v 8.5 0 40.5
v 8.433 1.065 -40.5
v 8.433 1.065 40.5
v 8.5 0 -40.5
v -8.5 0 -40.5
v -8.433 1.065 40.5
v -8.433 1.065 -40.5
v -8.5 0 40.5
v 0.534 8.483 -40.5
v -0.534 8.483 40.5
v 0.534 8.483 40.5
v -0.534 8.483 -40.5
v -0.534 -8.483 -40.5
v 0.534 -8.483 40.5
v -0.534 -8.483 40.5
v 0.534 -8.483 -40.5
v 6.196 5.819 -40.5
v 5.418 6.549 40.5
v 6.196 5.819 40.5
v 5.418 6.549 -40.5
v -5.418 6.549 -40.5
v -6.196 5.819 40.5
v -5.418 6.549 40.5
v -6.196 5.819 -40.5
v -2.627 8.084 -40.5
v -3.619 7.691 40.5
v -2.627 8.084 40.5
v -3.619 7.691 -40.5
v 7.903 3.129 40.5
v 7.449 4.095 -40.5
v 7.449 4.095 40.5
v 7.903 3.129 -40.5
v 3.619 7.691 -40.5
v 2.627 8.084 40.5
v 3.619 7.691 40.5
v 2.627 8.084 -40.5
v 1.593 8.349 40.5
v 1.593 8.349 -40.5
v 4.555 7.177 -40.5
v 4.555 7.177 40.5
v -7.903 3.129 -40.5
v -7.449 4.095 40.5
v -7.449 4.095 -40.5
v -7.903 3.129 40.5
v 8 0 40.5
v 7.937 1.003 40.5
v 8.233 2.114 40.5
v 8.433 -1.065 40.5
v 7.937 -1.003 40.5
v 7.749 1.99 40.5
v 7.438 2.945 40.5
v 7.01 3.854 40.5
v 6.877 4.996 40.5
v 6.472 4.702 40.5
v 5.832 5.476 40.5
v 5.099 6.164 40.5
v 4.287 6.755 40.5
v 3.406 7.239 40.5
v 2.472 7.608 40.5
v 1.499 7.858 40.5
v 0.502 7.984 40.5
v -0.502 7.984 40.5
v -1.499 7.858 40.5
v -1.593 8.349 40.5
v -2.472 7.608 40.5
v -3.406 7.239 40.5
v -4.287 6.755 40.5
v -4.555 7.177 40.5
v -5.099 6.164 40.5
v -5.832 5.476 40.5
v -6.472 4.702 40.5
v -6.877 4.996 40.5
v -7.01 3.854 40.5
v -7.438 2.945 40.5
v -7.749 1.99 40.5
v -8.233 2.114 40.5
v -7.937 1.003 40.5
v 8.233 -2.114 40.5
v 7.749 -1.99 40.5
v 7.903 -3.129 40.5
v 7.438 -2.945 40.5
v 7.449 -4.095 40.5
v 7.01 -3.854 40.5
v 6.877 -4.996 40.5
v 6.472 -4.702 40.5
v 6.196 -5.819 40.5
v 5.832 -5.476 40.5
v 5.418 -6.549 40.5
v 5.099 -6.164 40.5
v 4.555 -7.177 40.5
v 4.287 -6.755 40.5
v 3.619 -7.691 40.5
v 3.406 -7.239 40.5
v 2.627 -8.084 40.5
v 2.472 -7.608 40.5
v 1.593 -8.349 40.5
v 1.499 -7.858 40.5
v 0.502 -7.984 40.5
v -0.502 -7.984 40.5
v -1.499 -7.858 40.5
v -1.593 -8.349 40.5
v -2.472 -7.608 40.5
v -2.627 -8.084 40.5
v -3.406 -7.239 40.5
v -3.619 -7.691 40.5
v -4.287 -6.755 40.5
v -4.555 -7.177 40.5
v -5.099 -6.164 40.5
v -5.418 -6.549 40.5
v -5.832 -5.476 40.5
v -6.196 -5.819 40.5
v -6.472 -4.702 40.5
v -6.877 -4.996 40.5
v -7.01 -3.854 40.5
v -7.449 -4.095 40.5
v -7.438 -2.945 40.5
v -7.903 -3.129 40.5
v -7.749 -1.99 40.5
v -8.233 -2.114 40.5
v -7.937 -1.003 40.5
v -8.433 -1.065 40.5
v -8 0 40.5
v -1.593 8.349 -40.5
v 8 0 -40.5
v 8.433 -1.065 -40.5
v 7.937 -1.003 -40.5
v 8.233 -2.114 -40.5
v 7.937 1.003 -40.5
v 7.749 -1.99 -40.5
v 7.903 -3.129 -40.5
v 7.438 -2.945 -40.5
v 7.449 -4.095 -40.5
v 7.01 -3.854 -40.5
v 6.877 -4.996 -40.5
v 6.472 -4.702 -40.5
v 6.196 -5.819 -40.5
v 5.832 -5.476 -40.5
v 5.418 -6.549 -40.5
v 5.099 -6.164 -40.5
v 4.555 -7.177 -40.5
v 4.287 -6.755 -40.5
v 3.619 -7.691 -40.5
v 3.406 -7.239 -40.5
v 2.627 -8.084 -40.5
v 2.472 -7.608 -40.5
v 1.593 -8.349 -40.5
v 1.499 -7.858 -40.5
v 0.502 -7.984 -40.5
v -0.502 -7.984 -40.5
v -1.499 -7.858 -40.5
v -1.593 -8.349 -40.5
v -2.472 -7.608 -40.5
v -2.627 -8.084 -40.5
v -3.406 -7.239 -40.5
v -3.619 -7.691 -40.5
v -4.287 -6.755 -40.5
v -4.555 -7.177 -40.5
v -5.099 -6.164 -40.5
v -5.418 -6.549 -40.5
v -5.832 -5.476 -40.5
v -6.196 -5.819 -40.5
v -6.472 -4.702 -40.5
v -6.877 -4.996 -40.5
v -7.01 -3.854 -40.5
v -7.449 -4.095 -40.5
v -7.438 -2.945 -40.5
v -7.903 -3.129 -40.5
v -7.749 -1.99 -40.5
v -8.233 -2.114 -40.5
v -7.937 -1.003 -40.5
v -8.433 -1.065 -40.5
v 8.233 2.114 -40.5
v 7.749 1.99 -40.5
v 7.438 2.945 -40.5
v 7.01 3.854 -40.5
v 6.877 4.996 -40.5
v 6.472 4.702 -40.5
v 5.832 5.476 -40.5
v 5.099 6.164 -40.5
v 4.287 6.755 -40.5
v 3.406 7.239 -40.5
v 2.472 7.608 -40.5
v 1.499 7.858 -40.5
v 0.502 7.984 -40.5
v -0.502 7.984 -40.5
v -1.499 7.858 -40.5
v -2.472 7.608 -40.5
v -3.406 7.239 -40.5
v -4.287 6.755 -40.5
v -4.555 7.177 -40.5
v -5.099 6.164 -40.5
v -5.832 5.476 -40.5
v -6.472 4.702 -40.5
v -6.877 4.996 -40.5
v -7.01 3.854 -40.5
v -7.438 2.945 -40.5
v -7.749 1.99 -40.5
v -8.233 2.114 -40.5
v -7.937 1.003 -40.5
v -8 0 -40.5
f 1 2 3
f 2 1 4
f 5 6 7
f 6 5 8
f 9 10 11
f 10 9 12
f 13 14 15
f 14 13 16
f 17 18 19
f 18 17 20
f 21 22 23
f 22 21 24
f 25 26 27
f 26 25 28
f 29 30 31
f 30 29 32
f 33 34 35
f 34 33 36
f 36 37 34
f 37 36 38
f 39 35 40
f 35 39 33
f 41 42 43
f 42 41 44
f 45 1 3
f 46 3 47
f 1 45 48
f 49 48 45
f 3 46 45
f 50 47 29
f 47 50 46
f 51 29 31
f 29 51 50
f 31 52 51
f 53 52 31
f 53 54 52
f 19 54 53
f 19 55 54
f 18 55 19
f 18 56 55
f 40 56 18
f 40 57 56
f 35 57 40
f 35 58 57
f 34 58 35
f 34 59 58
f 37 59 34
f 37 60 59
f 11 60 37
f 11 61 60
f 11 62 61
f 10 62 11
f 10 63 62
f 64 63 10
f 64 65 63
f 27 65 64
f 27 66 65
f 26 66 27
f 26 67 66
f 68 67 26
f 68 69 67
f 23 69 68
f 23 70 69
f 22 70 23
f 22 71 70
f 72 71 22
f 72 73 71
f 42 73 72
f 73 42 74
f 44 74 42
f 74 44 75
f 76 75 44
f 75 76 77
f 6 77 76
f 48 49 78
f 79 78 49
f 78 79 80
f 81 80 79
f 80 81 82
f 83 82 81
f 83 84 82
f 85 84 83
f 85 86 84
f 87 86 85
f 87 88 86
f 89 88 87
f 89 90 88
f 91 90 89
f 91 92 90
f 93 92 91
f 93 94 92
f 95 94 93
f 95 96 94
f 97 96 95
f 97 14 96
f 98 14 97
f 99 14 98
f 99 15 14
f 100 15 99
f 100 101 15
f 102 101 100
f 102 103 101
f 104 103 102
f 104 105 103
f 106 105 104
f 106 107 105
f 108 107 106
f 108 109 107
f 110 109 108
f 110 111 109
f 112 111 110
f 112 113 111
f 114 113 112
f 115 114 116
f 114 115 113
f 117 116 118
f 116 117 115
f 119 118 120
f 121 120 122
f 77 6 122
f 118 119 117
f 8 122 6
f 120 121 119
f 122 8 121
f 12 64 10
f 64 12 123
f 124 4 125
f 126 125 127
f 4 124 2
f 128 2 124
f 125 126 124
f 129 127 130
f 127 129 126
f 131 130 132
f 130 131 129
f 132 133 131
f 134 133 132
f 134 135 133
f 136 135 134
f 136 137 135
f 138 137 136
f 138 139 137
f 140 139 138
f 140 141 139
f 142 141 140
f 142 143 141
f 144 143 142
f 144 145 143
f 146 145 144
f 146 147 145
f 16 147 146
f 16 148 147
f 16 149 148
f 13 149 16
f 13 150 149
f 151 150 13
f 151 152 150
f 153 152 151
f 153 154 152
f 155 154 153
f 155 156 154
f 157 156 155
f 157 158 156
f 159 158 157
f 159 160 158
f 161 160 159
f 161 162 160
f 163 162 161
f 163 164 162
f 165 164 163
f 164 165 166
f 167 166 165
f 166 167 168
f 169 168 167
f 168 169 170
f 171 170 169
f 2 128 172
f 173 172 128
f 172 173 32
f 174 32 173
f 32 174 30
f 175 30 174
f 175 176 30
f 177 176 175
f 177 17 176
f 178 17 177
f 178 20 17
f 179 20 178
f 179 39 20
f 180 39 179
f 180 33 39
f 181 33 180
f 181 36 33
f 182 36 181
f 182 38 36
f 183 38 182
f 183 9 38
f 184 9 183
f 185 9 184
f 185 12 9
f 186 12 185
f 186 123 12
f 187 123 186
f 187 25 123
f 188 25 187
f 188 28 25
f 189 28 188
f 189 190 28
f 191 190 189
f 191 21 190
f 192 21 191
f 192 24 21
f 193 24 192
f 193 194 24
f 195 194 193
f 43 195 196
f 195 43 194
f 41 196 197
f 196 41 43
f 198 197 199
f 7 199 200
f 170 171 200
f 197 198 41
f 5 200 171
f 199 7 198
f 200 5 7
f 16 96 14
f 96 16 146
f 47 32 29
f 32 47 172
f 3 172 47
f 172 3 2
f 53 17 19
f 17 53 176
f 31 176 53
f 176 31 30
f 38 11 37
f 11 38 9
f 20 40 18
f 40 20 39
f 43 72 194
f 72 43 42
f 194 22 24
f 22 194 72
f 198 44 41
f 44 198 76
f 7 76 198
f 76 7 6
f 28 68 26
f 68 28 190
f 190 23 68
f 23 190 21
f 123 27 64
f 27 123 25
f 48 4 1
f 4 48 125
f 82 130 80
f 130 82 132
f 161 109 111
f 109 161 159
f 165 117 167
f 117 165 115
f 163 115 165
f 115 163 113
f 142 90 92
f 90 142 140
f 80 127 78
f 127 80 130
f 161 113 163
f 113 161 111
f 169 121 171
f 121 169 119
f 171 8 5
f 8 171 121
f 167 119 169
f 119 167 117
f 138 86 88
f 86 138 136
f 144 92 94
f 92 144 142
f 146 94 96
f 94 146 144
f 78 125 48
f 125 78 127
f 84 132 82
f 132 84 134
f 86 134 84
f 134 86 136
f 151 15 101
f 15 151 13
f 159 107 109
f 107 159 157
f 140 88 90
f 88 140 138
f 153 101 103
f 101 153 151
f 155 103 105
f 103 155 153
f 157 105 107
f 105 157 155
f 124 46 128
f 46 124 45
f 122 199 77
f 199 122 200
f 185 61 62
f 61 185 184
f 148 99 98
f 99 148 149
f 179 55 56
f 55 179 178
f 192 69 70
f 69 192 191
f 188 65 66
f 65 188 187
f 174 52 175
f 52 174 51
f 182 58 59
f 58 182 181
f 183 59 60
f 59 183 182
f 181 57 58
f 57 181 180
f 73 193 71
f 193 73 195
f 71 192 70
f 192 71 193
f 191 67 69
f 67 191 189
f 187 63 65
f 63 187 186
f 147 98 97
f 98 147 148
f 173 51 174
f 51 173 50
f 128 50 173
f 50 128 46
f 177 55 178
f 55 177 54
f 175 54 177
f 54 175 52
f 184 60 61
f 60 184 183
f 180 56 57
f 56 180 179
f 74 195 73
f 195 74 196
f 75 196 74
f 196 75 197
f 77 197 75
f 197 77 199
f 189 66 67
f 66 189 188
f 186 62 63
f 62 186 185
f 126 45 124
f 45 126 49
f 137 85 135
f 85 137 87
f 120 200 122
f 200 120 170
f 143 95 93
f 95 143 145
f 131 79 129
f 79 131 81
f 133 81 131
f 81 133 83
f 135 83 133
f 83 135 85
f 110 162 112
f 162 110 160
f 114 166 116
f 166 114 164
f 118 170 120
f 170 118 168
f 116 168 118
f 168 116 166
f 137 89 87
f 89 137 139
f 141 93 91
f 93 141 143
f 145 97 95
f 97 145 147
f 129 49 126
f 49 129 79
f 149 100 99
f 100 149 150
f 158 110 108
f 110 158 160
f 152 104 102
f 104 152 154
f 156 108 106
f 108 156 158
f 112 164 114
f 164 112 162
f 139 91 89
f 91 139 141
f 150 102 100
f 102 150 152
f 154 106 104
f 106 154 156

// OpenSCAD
$fn = 50;


difference() {
	union() {
		translate(v = [0, 0, -40.5000000000]) {
			cylinder(h = 81, r = 8.5000000000);
		}
	}
	union() {
		translate(v = [0, 0, -100.0000000000]) {
			cylinder(h = 200, r = 8);
		}
	}
}
